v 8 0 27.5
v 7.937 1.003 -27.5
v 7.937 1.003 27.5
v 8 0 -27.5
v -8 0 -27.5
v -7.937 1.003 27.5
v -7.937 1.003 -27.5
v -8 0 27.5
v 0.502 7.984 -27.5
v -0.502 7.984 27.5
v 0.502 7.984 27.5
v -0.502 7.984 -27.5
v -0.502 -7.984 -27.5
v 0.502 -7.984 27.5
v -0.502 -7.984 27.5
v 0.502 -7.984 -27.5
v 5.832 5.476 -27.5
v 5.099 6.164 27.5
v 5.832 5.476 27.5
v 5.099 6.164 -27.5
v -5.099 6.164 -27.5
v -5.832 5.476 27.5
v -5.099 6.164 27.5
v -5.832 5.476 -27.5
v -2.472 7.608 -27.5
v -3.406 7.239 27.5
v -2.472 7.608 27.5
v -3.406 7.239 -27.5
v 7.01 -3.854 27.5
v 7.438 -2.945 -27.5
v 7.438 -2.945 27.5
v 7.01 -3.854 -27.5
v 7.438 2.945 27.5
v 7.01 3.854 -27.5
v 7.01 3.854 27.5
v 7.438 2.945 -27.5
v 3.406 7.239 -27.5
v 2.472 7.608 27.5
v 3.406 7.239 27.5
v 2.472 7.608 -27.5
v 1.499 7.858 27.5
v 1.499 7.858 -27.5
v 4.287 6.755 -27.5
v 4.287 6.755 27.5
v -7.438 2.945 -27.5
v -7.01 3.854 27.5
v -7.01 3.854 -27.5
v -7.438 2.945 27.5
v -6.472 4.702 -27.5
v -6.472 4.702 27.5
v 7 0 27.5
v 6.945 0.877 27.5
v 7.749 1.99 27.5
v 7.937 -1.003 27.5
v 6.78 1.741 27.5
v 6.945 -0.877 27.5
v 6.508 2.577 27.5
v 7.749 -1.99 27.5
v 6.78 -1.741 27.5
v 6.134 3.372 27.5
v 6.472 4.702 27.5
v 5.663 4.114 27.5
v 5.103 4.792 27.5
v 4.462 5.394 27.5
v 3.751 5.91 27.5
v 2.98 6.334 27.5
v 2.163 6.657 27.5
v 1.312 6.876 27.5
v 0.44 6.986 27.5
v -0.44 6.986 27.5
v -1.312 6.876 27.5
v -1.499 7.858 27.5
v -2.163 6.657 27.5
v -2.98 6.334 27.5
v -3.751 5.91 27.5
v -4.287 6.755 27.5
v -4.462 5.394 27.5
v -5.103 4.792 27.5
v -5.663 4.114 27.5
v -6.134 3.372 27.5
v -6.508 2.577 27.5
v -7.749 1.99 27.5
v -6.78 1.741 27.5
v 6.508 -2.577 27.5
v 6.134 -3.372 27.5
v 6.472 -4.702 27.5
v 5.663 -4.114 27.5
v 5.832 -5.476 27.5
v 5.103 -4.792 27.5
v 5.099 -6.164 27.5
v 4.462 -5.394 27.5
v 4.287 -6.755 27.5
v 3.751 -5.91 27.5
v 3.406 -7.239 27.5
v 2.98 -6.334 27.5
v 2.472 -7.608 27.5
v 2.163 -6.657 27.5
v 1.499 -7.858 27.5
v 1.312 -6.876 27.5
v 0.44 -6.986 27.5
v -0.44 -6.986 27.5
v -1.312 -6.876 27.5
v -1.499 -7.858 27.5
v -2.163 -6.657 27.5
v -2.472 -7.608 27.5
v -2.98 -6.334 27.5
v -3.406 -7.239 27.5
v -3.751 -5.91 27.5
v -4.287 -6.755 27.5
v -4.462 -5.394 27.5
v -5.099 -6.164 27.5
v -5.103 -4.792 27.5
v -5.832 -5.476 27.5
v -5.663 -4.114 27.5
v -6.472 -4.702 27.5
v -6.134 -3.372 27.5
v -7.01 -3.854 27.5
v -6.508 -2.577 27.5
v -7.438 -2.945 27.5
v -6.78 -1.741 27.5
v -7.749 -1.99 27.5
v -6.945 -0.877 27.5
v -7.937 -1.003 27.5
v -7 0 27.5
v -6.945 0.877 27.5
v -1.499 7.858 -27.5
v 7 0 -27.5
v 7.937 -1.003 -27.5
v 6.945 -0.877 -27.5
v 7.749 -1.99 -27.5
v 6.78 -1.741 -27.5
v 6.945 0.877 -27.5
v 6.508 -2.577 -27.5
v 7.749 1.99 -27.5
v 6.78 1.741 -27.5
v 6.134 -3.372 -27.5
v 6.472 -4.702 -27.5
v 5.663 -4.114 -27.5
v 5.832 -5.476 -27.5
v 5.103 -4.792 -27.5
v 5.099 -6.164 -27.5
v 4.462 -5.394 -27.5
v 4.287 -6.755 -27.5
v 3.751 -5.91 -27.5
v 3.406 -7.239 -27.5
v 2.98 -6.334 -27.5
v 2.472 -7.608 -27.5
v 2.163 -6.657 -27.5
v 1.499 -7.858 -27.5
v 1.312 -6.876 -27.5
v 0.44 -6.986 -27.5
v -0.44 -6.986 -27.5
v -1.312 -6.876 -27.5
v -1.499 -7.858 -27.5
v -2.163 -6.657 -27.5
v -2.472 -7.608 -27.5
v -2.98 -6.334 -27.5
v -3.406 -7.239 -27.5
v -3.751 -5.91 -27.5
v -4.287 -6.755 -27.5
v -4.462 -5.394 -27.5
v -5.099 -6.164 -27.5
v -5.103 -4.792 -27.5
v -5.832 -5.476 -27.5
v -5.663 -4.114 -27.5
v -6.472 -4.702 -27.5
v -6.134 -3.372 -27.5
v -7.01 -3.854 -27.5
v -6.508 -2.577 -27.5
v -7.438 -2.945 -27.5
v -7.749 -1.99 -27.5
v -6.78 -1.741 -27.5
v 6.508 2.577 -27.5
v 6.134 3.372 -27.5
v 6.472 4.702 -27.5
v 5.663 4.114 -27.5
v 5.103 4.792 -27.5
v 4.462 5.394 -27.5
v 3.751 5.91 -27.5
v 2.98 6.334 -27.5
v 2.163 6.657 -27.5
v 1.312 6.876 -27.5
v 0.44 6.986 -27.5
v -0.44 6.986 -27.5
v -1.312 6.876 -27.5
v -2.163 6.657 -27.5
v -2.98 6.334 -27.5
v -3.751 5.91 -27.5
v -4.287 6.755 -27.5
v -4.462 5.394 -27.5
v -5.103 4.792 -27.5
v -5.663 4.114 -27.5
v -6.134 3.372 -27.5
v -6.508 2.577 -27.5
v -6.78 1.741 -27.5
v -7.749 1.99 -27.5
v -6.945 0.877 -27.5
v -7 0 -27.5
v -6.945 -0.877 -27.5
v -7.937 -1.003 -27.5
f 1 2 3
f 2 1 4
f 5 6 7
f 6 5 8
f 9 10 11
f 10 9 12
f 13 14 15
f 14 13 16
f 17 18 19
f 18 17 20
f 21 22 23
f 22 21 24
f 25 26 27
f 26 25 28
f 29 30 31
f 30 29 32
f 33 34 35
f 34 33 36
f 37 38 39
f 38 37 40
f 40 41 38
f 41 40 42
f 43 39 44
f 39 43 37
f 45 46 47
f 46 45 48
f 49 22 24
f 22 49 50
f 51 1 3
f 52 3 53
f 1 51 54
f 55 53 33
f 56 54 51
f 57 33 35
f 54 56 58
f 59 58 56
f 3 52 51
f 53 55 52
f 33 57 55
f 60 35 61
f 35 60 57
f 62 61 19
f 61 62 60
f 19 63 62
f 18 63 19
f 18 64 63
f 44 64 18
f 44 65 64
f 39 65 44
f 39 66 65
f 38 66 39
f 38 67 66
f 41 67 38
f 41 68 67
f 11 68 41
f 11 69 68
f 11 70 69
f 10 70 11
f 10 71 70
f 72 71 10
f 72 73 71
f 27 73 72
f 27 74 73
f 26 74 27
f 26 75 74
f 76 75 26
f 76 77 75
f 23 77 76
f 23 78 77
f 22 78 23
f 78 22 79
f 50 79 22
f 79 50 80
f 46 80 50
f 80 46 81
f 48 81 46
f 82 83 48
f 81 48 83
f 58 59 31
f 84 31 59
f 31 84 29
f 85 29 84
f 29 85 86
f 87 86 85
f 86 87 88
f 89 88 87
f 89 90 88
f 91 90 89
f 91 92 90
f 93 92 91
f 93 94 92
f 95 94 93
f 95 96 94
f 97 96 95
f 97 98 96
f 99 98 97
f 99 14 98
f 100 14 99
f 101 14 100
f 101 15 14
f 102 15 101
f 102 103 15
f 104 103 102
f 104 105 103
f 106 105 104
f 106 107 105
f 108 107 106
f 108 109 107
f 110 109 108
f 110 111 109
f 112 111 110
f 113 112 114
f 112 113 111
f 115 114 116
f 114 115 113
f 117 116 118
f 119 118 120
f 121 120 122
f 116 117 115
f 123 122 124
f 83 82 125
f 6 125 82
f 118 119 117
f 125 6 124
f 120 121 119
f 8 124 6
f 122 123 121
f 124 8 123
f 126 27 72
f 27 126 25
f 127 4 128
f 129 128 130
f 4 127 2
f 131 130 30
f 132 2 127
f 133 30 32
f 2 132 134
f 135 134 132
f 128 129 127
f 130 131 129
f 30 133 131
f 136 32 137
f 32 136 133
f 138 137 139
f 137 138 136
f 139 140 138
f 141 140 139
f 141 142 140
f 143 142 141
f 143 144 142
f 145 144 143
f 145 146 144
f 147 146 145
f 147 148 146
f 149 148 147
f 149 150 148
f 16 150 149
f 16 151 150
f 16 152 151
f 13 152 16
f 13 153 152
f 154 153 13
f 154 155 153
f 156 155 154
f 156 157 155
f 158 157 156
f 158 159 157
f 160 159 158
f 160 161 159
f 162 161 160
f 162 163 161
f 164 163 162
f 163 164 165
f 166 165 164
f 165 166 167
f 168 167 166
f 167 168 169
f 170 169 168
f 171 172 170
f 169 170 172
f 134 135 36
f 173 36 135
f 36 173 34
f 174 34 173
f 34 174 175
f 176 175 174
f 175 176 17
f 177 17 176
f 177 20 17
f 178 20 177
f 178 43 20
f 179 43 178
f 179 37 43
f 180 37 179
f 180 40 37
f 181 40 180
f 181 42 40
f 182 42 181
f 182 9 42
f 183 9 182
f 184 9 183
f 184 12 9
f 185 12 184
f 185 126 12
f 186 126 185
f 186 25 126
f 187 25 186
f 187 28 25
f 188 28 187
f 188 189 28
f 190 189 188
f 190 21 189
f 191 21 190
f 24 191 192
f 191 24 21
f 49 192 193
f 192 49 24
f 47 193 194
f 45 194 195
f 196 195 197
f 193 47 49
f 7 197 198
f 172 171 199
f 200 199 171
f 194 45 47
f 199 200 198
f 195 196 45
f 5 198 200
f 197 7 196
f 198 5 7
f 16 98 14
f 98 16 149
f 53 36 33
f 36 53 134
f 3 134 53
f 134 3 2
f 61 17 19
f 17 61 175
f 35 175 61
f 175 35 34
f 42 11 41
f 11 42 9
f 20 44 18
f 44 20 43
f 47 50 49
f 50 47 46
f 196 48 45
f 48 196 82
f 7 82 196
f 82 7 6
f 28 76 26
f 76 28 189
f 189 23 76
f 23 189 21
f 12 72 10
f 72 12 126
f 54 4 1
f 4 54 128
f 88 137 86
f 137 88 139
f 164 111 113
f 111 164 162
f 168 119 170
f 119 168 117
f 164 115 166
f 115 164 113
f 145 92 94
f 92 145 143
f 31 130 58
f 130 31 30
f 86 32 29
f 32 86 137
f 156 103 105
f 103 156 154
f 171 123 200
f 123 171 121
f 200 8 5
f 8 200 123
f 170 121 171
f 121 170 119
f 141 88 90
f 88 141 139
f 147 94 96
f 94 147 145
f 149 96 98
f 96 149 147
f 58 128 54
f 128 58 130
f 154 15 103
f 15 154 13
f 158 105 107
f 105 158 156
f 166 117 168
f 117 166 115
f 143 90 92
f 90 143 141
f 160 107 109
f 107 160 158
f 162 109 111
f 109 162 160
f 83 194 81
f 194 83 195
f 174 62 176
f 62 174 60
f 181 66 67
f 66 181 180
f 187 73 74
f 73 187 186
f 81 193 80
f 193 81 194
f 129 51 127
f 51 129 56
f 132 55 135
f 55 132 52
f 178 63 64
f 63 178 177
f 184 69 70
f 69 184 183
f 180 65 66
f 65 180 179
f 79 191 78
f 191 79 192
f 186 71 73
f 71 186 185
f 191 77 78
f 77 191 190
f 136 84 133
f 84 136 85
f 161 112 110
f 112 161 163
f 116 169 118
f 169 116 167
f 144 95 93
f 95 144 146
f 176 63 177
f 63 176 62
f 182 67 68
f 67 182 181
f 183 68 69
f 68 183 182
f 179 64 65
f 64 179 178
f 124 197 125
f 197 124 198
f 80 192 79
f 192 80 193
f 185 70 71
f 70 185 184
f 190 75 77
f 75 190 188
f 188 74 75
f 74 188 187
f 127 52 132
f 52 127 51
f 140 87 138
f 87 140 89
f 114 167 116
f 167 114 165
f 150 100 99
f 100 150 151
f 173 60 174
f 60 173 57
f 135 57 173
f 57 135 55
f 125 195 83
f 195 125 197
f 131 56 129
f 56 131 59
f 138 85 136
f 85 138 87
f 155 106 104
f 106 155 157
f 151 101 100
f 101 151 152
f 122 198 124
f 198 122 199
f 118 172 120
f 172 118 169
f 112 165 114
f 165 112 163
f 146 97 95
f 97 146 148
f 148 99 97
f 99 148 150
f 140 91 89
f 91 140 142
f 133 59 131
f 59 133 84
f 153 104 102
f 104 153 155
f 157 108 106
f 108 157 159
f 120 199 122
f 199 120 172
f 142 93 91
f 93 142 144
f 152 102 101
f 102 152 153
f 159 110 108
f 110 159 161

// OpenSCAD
$fn = 50;


difference() {
	union() {
		translate(v = [0, 0, -27.5000000000]) {
			cylinder(h = 55, r = 8.0000000000);
		}
	}
	union() {
		translate(v = [0, 0, -100.0000000000]) {
			cylinder(h = 200, r = 7);
		}
	}
}
